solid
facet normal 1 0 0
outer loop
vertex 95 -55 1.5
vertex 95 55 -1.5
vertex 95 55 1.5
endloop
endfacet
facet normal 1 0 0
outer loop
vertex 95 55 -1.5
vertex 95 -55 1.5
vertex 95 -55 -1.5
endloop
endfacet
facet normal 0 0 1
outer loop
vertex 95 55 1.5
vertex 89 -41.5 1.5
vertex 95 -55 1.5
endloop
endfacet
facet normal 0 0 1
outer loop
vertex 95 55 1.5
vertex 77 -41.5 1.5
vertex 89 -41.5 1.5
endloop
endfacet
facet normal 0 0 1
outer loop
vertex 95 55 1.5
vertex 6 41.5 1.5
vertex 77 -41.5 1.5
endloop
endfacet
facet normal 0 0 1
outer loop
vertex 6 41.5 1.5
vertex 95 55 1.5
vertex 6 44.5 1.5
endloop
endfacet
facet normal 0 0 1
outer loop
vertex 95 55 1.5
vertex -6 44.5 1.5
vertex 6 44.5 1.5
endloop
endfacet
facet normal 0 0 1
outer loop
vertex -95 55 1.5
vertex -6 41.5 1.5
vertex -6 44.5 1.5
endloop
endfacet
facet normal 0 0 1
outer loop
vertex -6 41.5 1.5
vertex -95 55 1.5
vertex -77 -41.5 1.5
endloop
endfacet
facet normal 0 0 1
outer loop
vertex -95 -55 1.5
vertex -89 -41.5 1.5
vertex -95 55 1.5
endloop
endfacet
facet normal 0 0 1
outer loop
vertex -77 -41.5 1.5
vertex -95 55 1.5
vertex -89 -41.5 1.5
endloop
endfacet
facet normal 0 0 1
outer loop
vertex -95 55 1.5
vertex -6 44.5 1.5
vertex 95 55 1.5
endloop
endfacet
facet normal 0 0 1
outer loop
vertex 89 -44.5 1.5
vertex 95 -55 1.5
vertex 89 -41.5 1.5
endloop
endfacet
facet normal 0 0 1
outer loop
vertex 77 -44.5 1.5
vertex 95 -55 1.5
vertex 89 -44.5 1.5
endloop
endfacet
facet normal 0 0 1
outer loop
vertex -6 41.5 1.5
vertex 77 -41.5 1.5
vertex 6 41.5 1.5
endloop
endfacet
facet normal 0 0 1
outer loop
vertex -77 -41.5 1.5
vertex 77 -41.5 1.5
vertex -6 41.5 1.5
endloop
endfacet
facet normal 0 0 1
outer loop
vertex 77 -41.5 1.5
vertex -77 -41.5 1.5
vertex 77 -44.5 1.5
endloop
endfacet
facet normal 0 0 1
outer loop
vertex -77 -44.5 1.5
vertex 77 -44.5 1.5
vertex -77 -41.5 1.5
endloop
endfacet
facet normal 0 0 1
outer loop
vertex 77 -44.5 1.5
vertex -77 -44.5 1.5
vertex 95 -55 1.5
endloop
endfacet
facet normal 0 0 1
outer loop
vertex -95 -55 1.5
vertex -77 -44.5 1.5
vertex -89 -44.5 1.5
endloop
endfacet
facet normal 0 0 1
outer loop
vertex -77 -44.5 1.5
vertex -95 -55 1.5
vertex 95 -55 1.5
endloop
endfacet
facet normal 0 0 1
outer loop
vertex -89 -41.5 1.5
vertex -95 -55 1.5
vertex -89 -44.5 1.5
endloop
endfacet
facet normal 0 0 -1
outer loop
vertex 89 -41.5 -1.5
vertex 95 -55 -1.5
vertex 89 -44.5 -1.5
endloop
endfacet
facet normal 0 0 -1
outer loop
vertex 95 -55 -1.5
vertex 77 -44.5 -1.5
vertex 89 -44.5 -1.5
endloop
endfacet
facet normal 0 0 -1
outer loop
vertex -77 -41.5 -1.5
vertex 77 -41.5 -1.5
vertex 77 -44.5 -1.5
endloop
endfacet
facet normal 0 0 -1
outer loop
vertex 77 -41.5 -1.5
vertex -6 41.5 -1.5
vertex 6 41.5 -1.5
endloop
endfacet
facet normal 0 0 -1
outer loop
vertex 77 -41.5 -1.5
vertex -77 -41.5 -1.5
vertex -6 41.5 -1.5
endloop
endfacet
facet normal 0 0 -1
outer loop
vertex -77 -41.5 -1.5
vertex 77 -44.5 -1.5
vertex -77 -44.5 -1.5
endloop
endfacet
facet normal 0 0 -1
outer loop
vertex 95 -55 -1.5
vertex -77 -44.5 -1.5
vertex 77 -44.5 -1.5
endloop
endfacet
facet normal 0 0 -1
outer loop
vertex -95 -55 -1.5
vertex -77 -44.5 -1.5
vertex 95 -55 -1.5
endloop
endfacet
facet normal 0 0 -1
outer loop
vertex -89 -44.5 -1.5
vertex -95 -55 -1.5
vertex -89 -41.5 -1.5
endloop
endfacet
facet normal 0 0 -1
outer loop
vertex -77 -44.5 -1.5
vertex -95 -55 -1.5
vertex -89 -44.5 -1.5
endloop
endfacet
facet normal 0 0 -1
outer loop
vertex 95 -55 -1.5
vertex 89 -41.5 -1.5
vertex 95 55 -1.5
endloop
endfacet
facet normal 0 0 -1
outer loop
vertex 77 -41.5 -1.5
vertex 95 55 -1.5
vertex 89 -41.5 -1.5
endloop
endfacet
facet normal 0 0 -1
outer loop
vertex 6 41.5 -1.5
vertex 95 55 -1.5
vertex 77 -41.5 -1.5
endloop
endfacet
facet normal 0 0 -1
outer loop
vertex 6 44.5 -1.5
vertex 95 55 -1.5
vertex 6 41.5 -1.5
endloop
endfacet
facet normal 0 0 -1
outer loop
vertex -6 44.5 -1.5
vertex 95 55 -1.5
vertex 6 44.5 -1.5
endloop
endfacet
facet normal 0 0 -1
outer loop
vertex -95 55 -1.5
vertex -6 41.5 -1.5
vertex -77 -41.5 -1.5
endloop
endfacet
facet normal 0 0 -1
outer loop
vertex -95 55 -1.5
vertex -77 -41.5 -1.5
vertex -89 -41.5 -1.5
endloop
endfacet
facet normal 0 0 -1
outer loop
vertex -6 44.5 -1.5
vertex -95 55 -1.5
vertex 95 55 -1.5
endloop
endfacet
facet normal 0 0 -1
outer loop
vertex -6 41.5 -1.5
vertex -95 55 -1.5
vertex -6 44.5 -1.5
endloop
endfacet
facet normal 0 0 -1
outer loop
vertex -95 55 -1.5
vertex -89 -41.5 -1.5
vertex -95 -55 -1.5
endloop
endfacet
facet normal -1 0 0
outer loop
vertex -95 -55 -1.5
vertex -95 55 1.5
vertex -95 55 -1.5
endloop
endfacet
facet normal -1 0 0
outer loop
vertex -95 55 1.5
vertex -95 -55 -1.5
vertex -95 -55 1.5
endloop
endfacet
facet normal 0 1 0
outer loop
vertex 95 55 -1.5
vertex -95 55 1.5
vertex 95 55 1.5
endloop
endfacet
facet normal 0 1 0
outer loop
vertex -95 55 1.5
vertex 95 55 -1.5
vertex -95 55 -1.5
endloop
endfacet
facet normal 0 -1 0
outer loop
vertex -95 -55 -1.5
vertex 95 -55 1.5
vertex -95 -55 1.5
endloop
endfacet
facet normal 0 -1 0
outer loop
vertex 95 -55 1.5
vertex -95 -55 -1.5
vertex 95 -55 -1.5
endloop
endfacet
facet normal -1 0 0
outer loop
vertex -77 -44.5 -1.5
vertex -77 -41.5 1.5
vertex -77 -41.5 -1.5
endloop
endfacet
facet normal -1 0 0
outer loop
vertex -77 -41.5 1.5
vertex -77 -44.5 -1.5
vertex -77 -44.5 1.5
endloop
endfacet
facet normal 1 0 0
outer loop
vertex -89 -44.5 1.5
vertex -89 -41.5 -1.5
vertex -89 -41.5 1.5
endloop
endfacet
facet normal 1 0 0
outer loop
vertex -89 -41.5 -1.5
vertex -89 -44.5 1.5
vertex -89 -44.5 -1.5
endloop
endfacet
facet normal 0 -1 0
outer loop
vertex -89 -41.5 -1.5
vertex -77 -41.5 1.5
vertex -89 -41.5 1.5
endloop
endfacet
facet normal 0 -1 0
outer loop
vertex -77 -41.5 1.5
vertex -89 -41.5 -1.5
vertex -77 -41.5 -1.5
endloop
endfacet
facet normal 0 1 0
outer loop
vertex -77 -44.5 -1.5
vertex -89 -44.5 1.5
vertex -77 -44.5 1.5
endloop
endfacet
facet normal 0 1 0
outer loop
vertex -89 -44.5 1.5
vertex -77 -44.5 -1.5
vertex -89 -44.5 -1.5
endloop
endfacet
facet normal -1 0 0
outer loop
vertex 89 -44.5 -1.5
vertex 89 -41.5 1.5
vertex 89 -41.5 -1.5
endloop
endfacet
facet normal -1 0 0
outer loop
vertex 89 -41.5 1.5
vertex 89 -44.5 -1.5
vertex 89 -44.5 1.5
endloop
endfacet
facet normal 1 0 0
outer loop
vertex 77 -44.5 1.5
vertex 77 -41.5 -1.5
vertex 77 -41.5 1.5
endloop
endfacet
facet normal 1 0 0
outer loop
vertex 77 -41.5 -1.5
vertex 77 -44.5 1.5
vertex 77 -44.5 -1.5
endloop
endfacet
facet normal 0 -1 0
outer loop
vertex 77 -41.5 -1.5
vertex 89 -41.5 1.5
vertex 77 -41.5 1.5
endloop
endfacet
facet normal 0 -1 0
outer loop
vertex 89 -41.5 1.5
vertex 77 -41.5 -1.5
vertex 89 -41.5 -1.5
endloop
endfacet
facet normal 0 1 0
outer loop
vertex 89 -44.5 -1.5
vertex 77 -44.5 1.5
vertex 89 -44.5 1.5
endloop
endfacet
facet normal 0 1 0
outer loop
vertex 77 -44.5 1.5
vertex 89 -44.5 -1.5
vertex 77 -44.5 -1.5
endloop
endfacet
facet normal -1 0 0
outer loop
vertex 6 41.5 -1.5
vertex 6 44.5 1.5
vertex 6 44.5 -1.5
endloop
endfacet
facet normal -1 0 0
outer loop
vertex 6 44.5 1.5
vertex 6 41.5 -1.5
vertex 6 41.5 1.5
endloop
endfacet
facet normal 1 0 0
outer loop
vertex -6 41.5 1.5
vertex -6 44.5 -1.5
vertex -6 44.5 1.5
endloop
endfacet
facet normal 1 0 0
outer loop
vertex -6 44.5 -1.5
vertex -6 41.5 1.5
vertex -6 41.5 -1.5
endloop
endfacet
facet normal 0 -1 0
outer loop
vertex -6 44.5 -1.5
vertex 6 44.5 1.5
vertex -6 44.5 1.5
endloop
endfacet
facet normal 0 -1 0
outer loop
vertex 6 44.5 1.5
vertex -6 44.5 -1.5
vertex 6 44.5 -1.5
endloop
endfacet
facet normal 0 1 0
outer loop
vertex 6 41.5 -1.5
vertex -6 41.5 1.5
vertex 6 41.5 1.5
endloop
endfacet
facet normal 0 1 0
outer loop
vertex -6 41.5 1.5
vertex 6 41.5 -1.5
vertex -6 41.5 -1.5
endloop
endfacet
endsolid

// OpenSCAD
// ========================================
// a 190 x 110 x 3 mm plate with three 12 x 3 mm slots
// NeuroCAD canonical IR; dimensions are millimetres
// ========================================
$fn = 48;

difference() {
  cube(size=[190, 110, 3], center=true);
  translate([-83, -43, 0]) {
    cube(size=[12, 3, 5], center=true);
  }
  translate([83, -43, 0]) {
    cube(size=[12, 3, 5], center=true);
  }
  translate([0, 43, 0]) {
    cube(size=[12, 3, 5], center=true);
  }
}
